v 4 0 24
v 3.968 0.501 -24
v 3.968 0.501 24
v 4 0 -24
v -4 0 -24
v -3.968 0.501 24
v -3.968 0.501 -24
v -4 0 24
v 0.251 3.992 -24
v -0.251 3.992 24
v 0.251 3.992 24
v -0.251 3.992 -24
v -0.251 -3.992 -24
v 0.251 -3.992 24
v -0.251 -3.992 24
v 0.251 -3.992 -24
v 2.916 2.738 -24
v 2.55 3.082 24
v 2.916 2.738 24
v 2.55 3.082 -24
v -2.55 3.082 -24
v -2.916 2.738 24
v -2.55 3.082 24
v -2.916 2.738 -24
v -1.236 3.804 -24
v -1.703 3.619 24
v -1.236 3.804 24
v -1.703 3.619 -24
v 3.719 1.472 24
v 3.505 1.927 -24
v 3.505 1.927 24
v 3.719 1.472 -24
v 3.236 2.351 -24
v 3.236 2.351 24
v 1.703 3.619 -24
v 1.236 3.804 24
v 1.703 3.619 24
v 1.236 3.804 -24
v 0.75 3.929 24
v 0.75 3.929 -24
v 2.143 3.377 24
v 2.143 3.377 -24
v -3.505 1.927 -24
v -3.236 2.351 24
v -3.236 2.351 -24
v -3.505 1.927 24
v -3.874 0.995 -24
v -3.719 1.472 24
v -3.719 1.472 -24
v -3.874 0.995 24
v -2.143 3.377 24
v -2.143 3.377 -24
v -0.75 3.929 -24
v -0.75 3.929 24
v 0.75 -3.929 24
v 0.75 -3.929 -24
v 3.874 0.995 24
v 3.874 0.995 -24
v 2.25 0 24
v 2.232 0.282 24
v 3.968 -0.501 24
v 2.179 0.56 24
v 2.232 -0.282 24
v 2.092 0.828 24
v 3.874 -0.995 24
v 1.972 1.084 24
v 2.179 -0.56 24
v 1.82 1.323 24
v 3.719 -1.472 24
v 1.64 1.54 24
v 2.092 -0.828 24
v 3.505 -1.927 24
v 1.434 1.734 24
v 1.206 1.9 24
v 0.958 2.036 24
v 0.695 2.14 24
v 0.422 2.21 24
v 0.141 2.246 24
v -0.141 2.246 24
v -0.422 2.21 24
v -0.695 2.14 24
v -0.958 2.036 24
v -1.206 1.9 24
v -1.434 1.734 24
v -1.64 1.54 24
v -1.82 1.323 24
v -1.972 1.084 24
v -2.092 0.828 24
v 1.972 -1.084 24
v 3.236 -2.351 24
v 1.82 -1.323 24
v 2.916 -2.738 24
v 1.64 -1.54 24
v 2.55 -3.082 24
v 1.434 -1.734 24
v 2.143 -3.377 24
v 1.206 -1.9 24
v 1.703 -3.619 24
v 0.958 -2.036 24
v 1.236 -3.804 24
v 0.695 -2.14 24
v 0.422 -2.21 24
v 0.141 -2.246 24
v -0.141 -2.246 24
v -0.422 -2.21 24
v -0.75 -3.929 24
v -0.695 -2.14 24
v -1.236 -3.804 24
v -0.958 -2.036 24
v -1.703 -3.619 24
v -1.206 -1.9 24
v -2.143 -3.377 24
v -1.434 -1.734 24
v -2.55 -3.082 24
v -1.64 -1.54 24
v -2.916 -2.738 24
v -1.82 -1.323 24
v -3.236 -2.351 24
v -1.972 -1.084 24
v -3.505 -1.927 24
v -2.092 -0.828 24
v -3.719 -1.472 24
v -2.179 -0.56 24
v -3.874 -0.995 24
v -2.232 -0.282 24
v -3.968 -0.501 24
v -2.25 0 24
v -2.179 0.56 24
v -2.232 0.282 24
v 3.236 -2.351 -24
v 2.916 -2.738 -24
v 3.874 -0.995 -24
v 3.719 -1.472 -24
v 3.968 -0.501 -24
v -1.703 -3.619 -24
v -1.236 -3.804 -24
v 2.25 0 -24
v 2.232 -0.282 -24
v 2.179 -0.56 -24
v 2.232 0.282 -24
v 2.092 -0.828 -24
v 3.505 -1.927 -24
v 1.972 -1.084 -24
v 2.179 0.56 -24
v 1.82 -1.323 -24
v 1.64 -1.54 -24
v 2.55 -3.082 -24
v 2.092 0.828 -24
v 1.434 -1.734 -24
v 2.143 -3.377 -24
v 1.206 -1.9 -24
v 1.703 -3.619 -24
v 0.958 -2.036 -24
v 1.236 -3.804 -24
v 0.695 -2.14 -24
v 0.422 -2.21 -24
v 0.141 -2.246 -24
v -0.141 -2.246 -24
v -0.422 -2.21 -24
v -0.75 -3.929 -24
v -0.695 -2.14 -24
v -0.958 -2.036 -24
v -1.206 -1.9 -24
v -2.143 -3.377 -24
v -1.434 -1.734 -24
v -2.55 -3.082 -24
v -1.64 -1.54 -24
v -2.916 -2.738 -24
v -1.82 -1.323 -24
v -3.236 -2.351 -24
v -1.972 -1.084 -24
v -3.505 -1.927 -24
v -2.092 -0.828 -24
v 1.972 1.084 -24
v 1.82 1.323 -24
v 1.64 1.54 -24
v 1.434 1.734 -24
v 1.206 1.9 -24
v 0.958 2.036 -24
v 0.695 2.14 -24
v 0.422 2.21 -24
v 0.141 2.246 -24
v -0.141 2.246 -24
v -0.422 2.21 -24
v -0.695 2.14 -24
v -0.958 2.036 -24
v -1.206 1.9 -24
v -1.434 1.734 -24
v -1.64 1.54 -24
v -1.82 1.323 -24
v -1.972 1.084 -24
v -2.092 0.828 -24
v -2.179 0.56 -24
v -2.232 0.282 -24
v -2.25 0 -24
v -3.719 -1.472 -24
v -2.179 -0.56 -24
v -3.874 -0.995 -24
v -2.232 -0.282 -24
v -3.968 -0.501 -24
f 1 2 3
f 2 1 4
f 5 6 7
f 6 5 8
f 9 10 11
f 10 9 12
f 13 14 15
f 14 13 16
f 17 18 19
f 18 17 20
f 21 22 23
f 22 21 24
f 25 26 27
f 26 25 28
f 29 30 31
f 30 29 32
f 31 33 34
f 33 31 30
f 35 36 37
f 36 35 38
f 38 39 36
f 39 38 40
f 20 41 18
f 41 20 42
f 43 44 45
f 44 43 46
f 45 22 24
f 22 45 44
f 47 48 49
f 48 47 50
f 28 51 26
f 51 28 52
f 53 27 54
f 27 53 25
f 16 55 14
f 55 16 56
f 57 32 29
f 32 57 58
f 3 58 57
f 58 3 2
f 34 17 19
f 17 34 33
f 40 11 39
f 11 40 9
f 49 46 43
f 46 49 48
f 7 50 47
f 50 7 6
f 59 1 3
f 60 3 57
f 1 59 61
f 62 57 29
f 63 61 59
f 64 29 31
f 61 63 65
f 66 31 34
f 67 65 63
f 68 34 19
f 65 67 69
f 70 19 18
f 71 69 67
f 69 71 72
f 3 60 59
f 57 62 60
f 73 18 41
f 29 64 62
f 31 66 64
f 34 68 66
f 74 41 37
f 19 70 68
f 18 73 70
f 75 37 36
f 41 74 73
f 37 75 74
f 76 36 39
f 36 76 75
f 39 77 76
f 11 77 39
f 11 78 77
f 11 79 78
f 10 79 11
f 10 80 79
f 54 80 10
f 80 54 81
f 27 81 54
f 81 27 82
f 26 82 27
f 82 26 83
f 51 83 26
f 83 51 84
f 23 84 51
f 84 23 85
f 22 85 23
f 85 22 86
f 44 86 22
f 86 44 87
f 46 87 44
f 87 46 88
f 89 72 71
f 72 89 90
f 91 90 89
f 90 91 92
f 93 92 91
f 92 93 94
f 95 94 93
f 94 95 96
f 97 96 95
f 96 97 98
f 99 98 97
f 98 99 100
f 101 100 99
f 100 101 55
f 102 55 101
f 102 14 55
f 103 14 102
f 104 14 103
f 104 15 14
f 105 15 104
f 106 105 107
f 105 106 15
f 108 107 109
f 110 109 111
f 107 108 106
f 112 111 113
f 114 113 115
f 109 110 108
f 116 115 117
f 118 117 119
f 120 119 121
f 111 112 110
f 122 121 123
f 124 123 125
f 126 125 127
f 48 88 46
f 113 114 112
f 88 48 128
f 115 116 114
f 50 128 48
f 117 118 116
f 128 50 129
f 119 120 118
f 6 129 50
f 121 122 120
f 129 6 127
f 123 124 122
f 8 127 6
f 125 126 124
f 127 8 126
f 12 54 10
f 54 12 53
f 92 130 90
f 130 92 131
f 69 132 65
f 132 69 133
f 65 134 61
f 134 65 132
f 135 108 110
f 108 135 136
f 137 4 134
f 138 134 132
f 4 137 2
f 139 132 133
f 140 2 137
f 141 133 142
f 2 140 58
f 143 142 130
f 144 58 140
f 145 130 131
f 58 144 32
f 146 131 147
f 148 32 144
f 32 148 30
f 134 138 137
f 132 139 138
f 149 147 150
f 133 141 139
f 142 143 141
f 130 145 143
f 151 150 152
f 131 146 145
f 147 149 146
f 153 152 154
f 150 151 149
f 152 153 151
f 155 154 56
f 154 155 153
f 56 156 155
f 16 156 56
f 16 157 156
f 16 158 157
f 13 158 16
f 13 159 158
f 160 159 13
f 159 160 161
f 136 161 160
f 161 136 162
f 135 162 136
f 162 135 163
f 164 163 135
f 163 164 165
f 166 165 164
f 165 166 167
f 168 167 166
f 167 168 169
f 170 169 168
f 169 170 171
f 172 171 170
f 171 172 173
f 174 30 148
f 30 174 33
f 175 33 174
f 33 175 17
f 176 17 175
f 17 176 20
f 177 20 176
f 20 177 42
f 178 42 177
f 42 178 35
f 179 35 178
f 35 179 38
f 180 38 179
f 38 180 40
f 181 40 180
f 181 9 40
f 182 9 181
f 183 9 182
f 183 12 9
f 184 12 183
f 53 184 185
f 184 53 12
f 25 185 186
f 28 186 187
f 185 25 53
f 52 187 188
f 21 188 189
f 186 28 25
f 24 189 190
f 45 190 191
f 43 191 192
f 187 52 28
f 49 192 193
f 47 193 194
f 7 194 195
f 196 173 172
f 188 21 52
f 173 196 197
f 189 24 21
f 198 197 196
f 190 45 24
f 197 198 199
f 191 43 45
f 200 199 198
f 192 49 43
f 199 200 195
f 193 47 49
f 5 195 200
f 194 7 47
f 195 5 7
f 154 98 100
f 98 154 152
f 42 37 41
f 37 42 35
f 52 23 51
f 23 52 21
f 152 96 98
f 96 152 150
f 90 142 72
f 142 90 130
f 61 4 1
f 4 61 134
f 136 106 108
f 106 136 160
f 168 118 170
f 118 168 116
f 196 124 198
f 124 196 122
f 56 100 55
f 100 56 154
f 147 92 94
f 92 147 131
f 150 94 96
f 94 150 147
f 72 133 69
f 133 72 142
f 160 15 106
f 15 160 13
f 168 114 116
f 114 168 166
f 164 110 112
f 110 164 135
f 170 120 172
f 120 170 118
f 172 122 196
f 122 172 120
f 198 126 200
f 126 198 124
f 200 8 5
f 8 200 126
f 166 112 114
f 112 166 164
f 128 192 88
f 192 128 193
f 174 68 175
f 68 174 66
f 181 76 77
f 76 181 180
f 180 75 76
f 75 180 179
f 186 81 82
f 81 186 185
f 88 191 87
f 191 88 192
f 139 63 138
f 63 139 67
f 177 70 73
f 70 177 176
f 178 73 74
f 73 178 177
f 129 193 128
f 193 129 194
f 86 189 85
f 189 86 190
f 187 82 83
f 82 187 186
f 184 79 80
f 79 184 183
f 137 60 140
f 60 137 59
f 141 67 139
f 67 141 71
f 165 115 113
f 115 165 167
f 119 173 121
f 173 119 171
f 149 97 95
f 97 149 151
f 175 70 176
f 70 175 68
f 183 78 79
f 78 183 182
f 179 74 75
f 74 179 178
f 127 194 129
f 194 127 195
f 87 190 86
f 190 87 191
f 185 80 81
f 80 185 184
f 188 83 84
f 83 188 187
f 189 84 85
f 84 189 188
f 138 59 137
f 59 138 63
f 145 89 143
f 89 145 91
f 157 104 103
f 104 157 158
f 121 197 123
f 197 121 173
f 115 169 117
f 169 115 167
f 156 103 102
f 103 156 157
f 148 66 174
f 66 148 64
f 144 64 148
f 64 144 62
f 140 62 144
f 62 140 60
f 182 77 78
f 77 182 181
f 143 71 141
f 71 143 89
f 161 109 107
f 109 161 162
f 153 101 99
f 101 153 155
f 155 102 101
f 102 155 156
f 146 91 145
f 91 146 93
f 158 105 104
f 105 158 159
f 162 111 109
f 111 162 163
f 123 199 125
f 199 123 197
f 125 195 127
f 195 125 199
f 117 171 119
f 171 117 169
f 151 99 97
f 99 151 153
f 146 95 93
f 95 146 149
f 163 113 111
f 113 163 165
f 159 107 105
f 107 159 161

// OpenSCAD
$fn = 50;


difference() {
	union() {
		translate(v = [0, 0, -24.0000000000]) {
			cylinder(h = 48, r = 4.0000000000);
		}
	}
	union() {
		translate(v = [0, 0, -100.0000000000]) {
			cylinder(h = 200, r = 2.2500000000);
		}
	}
}
